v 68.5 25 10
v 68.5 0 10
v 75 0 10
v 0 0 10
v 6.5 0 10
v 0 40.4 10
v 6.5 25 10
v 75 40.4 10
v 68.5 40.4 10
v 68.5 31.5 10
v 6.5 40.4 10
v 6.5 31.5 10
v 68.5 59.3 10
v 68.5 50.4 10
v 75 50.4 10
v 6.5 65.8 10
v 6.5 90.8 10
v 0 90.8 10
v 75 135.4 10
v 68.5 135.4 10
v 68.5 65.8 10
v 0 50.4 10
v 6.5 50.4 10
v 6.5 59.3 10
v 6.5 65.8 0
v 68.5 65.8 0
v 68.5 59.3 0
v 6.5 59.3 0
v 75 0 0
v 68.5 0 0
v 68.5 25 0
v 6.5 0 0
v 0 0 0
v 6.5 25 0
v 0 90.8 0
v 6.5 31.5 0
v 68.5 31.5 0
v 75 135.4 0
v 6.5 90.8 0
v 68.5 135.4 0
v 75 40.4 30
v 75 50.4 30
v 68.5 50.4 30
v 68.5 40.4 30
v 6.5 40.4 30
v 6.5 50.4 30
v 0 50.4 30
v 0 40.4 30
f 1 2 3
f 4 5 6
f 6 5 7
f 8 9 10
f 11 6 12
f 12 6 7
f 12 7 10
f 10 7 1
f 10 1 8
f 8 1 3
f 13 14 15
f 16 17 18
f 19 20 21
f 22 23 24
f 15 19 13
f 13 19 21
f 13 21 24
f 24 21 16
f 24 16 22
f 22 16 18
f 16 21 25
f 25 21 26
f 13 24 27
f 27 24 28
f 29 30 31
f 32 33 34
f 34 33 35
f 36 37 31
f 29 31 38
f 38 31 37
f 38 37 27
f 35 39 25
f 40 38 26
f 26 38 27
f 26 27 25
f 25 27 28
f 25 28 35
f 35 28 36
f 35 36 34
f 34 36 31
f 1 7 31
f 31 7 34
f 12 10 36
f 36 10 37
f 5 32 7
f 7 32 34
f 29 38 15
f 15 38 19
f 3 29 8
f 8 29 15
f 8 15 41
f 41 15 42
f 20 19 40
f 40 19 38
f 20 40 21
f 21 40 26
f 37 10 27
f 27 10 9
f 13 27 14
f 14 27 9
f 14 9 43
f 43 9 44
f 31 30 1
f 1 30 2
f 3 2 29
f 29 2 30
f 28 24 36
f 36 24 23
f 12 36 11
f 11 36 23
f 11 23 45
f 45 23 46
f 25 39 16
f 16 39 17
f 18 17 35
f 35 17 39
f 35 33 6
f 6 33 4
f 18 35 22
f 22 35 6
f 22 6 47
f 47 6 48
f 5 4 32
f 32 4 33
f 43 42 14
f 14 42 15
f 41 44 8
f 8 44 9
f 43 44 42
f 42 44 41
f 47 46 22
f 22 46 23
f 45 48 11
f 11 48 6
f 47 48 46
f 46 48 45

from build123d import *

# Parameters (mm, degrees)
SKETCH1_W           = 6.5
SKETCH1_H           = 90.8
SKETCH1_H_2         = 135.4
SKETCH1_W_2         = 62
SKETCH1_H_3         = 6.5
BOSS_EXTRUDE1_DEPTH = 10
SKETCH2_W           = 6.5
SKETCH2_H           = 10
BOSS_EXTRUDE2_DEPTH = 20


with BuildPart() as part:
    # Sketch1 → Boss-Extrude1 (new body)
    with BuildSketch(Plane.XY):
        with Locations((3.25, 45.4)):
            Rectangle(SKETCH1_W, SKETCH1_H)
        with Locations((71.75, 67.7)):
            Rectangle(SKETCH1_W, SKETCH1_H_2)
        with Locations((37.5, 28.25)):
            Rectangle(SKETCH1_W_2, SKETCH1_H_3)
        with Locations((37.5, 62.55)):
            Rectangle(SKETCH1_W_2, SKETCH1_H_3)
    extrude(amount=BOSS_EXTRUDE1_DEPTH)

    # Sketch2 → Boss-Extrude2 (add)
    with BuildSketch(Plane.XY.offset(10)):
        with Locations((3.25, 45.4)):
            Rectangle(SKETCH2_W, SKETCH2_H)
        with Locations((71.75, 45.4)):
            Rectangle(SKETCH2_W, SKETCH2_H)
    extrude(amount=BOSS_EXTRUDE2_DEPTH)


solid = part.part
